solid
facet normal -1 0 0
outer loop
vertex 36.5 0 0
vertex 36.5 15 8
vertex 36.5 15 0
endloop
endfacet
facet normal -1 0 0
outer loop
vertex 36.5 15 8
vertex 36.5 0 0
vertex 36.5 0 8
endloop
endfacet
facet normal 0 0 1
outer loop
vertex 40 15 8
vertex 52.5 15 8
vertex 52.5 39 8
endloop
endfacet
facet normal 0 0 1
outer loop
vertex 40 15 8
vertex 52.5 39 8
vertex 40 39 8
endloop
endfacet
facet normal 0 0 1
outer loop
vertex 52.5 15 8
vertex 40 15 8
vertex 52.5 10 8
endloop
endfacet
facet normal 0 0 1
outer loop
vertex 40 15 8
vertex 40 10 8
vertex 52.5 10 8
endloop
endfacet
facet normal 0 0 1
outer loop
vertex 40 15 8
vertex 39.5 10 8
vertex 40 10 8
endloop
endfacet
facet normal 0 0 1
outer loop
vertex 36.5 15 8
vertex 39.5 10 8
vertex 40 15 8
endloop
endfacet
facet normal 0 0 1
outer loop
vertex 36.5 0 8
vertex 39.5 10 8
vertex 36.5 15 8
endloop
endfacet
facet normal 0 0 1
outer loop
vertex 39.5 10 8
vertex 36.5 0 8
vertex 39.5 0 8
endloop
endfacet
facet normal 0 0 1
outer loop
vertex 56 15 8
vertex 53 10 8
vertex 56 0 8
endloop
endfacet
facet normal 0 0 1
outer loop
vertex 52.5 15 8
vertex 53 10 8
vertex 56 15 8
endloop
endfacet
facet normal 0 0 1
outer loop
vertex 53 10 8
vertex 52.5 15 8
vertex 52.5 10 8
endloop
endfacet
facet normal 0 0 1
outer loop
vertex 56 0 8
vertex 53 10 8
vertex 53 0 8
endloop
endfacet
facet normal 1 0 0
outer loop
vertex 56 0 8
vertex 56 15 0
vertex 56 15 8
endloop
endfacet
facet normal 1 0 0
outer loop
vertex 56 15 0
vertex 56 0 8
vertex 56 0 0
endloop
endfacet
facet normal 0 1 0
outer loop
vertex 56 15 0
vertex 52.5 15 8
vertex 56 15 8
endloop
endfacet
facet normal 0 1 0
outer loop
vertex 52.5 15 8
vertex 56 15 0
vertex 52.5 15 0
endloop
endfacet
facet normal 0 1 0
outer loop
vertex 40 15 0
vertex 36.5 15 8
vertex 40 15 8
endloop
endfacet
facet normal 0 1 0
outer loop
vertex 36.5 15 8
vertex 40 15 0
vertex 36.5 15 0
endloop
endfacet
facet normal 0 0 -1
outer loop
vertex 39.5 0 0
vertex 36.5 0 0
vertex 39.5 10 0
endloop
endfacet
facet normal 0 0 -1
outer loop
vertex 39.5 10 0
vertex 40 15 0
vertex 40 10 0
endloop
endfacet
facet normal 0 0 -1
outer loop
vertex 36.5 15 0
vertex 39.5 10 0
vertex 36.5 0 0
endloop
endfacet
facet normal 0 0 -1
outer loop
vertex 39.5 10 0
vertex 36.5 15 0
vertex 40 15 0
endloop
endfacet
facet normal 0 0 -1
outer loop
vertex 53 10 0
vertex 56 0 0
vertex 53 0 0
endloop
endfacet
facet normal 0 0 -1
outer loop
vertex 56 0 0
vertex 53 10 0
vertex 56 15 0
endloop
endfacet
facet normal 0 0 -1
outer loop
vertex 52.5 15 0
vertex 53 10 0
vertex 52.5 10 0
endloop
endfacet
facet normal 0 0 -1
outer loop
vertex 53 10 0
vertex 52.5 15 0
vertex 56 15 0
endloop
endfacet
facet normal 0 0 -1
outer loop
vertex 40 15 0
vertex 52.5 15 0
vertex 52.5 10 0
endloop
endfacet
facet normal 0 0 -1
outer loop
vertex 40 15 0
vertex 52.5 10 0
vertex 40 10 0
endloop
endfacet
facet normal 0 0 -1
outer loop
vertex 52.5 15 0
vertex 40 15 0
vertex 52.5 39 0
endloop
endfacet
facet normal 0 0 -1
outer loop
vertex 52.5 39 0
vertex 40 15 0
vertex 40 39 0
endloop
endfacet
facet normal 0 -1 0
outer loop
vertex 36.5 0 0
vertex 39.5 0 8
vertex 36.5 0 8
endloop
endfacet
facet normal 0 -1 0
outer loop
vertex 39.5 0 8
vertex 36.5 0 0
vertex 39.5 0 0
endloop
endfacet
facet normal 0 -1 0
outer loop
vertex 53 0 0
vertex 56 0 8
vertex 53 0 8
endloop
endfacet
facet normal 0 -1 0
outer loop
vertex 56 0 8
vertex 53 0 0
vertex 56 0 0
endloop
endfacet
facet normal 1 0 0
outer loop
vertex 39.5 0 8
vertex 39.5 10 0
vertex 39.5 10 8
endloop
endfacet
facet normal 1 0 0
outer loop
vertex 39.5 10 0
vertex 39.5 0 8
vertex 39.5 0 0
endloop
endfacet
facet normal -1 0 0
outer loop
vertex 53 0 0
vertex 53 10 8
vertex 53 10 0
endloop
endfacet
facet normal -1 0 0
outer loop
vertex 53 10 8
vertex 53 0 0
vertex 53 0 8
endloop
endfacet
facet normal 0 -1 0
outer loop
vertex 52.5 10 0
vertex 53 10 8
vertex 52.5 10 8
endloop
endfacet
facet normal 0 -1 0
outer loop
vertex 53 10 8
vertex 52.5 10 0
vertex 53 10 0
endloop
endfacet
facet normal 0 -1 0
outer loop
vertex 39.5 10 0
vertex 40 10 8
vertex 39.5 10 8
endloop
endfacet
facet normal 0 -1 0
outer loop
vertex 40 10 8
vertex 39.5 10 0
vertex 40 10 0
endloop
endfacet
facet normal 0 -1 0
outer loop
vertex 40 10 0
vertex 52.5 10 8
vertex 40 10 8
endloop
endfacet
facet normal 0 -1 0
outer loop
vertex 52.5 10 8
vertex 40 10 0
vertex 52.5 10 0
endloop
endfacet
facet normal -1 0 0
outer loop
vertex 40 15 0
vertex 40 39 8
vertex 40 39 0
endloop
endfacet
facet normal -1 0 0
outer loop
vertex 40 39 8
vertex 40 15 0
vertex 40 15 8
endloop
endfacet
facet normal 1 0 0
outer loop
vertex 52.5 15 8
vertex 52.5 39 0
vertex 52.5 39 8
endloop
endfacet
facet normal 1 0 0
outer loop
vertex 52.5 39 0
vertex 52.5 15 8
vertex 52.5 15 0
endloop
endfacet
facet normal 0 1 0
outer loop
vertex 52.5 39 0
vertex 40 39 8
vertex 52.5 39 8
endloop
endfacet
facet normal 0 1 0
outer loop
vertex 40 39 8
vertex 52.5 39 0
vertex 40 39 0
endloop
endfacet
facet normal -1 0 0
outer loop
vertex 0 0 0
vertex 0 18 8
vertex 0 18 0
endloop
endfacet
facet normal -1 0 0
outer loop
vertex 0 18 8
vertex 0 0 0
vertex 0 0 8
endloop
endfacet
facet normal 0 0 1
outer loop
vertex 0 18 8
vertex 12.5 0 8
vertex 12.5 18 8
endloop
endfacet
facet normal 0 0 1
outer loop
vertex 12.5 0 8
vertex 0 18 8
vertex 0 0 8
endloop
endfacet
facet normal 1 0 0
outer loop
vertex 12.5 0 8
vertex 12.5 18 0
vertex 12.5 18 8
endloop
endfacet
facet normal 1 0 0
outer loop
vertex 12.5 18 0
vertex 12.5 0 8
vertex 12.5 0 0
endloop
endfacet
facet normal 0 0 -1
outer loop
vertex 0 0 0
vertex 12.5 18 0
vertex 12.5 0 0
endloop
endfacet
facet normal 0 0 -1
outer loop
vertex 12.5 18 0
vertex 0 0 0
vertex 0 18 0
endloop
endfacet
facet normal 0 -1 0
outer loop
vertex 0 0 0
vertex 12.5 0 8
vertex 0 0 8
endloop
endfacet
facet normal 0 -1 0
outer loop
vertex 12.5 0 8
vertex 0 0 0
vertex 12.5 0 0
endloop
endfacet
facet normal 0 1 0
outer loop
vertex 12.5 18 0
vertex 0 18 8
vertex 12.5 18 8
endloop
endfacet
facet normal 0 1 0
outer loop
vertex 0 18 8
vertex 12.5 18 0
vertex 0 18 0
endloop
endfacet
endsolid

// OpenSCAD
cube(size=[12.5, 18, 8]);

translate([40,0,0])
    union() {
        translate([0,10,0])
            cube(size=[12.5,29,8]);
        difference() {
            translate([-3.5,0,0])
                cube(size=[19.5,15,8]);
            translate([-.5,0,0])
                cube(size=[13.5,10,8]);
        }           
    }
